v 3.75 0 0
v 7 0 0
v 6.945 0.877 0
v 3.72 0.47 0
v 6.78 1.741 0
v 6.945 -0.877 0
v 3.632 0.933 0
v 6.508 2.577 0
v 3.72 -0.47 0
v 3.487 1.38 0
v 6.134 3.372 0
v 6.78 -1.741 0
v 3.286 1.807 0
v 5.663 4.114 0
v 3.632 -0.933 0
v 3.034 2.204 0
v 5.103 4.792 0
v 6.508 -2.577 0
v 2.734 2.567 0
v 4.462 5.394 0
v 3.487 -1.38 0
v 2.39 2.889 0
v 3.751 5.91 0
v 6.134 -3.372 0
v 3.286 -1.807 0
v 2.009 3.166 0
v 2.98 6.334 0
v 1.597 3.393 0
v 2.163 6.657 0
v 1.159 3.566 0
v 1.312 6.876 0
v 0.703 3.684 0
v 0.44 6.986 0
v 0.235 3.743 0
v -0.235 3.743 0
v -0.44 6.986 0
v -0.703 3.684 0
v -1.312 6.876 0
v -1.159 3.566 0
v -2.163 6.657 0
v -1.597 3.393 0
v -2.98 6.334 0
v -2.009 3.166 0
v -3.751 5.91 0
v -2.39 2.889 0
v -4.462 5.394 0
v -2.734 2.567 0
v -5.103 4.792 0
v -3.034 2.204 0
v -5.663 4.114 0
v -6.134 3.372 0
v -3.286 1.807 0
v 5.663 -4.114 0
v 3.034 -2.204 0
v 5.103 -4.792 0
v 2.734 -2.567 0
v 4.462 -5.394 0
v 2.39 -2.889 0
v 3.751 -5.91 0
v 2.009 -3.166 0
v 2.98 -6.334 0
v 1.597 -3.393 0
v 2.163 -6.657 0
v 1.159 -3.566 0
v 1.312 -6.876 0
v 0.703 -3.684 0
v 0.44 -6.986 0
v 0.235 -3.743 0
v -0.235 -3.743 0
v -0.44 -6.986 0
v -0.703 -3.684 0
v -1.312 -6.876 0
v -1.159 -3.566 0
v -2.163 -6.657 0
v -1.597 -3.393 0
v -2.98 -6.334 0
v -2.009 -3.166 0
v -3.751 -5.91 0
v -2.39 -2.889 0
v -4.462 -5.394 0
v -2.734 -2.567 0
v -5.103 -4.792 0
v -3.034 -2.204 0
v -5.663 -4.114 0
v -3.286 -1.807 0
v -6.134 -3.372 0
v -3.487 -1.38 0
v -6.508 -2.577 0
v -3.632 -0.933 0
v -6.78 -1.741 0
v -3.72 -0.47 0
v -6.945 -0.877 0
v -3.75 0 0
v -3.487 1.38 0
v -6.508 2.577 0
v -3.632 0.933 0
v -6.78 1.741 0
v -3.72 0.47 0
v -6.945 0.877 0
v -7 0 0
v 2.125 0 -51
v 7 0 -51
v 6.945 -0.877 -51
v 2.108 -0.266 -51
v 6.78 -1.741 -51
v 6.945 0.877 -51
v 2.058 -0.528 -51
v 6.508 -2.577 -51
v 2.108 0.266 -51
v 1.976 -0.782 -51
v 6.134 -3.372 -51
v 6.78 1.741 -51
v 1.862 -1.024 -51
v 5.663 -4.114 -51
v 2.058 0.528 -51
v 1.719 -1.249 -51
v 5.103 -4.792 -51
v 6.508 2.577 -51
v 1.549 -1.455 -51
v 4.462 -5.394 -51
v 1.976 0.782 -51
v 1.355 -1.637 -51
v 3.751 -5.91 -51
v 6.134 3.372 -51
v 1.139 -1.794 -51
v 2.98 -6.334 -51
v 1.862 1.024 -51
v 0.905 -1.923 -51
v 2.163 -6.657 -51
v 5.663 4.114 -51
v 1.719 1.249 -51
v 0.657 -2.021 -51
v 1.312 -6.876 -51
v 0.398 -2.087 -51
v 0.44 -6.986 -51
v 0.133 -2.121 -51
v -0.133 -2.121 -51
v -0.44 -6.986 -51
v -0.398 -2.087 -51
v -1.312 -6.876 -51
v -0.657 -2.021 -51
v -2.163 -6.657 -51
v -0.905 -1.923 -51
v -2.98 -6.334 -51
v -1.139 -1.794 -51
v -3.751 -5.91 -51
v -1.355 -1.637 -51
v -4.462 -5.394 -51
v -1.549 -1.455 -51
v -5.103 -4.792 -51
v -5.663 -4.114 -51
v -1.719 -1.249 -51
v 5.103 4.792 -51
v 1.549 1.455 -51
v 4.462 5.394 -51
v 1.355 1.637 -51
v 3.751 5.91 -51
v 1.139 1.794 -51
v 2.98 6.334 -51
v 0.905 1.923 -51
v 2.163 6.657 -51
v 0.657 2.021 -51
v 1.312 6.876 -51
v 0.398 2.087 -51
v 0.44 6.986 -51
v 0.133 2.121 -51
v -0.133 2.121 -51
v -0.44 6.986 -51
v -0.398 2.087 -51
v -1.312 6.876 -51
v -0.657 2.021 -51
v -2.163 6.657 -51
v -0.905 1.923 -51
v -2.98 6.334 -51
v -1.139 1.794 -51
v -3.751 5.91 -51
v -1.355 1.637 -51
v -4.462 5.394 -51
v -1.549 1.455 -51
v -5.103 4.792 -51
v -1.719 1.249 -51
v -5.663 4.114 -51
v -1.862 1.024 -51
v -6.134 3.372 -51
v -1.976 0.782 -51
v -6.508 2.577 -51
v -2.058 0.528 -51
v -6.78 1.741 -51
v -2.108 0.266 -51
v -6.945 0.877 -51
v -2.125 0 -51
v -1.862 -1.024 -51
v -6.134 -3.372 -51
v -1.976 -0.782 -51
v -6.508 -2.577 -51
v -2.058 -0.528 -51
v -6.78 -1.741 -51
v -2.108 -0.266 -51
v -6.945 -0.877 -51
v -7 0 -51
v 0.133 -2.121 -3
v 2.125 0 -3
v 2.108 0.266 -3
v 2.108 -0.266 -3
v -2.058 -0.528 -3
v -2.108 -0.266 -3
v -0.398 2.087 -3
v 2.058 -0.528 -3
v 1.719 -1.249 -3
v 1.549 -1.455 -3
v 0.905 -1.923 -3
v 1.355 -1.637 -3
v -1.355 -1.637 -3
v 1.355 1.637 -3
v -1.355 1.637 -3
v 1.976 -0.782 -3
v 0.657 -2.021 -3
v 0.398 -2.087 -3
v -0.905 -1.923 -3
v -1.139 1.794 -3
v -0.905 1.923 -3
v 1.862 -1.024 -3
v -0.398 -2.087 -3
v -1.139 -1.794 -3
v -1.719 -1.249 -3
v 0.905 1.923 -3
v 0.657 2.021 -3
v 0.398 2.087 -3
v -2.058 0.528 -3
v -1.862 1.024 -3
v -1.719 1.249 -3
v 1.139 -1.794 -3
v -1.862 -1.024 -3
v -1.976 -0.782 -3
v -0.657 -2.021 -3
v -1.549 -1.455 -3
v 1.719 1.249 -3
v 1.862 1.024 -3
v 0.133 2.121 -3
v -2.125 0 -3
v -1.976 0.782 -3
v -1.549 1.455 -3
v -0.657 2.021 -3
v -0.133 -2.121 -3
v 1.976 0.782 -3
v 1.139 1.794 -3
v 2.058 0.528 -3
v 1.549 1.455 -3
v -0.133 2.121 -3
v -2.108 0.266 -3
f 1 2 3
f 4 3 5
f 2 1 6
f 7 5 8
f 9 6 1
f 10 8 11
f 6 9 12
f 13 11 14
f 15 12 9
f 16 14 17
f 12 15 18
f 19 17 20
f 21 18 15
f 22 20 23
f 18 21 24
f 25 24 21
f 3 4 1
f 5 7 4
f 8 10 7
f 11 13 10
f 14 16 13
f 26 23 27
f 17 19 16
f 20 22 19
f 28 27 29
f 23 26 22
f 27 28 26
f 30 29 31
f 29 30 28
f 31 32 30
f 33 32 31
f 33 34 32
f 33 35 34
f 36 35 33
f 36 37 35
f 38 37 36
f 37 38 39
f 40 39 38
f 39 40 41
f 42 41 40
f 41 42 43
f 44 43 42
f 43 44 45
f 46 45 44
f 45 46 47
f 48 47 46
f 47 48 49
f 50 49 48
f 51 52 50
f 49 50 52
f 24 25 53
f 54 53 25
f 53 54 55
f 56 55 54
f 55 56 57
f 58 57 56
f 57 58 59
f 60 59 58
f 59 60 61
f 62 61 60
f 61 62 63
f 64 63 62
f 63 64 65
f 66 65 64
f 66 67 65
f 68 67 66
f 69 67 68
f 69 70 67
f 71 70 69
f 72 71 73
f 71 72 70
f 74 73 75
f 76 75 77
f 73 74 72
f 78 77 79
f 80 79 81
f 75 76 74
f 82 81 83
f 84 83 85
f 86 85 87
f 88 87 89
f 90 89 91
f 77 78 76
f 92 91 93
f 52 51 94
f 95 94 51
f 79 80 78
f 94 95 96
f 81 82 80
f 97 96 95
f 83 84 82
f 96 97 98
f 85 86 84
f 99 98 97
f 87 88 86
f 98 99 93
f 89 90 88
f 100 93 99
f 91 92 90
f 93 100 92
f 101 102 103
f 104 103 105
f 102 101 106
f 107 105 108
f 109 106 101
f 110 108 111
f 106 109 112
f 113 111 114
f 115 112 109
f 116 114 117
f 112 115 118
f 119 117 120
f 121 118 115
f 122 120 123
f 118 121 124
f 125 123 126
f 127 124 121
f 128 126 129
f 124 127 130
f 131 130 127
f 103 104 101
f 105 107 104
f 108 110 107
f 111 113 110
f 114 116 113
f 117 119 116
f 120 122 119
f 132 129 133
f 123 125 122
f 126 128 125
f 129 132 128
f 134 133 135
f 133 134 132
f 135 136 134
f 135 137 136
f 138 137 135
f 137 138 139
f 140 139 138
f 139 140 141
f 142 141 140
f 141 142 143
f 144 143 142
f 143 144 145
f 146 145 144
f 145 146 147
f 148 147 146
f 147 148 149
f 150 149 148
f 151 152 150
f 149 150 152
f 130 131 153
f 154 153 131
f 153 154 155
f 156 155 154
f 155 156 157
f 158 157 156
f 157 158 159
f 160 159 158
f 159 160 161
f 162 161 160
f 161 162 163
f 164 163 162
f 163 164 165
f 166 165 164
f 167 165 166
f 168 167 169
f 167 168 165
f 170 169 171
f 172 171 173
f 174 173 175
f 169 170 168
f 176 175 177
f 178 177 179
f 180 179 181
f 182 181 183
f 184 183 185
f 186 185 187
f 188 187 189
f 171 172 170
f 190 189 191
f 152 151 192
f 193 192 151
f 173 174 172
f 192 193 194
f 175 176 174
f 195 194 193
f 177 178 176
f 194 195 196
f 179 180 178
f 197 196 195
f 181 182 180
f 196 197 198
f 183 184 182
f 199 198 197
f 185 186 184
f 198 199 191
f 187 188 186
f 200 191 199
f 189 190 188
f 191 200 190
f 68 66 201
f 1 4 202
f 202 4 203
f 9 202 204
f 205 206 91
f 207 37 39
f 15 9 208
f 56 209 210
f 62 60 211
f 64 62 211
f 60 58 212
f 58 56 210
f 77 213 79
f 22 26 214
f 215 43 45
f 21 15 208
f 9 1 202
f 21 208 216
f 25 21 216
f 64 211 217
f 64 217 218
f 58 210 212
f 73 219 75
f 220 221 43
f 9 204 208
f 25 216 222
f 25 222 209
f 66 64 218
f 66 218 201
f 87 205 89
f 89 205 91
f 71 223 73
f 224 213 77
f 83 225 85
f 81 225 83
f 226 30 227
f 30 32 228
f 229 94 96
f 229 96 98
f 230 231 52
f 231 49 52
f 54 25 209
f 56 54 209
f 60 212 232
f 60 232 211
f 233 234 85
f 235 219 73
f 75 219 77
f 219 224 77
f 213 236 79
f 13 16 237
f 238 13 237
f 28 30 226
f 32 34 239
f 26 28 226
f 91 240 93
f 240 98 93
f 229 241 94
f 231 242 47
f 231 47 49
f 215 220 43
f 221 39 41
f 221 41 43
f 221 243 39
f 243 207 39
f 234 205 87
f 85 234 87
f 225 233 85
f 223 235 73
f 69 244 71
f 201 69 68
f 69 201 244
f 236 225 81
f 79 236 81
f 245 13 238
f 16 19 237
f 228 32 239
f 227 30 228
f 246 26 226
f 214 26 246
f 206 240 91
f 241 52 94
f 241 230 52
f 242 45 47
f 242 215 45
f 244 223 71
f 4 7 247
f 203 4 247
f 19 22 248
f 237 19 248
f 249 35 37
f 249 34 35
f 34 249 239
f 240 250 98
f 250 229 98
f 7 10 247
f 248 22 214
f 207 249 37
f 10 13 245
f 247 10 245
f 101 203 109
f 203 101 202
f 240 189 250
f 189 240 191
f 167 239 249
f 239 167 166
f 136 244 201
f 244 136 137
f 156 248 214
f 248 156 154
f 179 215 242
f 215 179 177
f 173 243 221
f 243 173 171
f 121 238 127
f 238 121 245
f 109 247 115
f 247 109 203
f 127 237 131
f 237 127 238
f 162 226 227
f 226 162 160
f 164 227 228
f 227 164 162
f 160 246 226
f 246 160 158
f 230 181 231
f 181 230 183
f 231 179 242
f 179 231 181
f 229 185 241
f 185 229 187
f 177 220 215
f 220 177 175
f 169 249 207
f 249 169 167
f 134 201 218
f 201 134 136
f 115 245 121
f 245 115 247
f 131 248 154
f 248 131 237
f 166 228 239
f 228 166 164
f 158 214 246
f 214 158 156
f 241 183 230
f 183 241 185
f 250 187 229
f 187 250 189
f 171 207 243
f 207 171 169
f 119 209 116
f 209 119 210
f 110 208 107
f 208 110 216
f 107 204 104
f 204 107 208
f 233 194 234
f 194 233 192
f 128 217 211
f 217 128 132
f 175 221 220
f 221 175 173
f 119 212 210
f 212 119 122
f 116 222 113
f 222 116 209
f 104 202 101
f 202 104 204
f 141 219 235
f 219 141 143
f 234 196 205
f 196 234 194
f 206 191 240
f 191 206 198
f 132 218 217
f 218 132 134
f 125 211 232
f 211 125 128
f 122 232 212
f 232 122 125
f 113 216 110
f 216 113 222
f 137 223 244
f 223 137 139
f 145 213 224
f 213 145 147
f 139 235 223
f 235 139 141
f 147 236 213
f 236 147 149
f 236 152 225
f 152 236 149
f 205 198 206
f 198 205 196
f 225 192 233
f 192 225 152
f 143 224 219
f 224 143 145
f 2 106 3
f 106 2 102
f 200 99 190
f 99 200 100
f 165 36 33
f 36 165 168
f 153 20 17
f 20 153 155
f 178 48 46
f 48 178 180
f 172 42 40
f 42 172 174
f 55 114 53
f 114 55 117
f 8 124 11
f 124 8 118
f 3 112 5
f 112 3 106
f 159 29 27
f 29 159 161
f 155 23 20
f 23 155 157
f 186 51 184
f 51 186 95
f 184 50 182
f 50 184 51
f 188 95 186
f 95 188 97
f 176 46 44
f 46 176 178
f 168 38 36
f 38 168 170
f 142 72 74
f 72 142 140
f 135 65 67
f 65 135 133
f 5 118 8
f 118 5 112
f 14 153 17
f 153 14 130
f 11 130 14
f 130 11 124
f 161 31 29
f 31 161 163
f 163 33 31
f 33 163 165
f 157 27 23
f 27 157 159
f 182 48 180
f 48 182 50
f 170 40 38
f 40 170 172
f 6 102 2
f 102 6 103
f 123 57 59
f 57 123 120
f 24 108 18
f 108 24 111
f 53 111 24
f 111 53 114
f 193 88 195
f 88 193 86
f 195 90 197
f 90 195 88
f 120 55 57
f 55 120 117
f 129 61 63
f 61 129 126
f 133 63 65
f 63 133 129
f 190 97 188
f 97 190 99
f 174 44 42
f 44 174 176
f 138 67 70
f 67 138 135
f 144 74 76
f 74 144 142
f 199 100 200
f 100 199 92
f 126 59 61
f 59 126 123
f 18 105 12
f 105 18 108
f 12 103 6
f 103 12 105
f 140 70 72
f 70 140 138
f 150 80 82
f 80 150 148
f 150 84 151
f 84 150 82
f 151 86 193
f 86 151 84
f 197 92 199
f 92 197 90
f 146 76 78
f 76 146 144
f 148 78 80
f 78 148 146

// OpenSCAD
$fn = 50;


difference() {
	union() {
		translate(v = [0, 0, -51.0000000000]) {
			cylinder(h = 51, r = 7.0000000000);
		}
		cylinder(h = 0, r = 10.0000000000);
	}
	union() {
		translate(v = [0, 0, 0]) {
			rotate(a = [0, 0, 0]) {
				difference() {
					union() {
						#translate(v = [0, 0, -51.0000000000]) {
							cylinder(h = 51, r = 2.0000000000);
						}
						#translate(v = [0, 0, -3]) {
							cylinder(h = 3, r1 = 2.1250000000, r2 = 3.7500000000);
						}
						#translate(v = [0, 0, -51.0000000000]) {
							cylinder(h = 51, r = 2.1250000000);
						}
						#translate(v = [0, 0, -51.0000000000]) {
							cylinder(h = 51, r = 2.0000000000);
						}
					}
					union();
				}
			}
		}
	}
}
